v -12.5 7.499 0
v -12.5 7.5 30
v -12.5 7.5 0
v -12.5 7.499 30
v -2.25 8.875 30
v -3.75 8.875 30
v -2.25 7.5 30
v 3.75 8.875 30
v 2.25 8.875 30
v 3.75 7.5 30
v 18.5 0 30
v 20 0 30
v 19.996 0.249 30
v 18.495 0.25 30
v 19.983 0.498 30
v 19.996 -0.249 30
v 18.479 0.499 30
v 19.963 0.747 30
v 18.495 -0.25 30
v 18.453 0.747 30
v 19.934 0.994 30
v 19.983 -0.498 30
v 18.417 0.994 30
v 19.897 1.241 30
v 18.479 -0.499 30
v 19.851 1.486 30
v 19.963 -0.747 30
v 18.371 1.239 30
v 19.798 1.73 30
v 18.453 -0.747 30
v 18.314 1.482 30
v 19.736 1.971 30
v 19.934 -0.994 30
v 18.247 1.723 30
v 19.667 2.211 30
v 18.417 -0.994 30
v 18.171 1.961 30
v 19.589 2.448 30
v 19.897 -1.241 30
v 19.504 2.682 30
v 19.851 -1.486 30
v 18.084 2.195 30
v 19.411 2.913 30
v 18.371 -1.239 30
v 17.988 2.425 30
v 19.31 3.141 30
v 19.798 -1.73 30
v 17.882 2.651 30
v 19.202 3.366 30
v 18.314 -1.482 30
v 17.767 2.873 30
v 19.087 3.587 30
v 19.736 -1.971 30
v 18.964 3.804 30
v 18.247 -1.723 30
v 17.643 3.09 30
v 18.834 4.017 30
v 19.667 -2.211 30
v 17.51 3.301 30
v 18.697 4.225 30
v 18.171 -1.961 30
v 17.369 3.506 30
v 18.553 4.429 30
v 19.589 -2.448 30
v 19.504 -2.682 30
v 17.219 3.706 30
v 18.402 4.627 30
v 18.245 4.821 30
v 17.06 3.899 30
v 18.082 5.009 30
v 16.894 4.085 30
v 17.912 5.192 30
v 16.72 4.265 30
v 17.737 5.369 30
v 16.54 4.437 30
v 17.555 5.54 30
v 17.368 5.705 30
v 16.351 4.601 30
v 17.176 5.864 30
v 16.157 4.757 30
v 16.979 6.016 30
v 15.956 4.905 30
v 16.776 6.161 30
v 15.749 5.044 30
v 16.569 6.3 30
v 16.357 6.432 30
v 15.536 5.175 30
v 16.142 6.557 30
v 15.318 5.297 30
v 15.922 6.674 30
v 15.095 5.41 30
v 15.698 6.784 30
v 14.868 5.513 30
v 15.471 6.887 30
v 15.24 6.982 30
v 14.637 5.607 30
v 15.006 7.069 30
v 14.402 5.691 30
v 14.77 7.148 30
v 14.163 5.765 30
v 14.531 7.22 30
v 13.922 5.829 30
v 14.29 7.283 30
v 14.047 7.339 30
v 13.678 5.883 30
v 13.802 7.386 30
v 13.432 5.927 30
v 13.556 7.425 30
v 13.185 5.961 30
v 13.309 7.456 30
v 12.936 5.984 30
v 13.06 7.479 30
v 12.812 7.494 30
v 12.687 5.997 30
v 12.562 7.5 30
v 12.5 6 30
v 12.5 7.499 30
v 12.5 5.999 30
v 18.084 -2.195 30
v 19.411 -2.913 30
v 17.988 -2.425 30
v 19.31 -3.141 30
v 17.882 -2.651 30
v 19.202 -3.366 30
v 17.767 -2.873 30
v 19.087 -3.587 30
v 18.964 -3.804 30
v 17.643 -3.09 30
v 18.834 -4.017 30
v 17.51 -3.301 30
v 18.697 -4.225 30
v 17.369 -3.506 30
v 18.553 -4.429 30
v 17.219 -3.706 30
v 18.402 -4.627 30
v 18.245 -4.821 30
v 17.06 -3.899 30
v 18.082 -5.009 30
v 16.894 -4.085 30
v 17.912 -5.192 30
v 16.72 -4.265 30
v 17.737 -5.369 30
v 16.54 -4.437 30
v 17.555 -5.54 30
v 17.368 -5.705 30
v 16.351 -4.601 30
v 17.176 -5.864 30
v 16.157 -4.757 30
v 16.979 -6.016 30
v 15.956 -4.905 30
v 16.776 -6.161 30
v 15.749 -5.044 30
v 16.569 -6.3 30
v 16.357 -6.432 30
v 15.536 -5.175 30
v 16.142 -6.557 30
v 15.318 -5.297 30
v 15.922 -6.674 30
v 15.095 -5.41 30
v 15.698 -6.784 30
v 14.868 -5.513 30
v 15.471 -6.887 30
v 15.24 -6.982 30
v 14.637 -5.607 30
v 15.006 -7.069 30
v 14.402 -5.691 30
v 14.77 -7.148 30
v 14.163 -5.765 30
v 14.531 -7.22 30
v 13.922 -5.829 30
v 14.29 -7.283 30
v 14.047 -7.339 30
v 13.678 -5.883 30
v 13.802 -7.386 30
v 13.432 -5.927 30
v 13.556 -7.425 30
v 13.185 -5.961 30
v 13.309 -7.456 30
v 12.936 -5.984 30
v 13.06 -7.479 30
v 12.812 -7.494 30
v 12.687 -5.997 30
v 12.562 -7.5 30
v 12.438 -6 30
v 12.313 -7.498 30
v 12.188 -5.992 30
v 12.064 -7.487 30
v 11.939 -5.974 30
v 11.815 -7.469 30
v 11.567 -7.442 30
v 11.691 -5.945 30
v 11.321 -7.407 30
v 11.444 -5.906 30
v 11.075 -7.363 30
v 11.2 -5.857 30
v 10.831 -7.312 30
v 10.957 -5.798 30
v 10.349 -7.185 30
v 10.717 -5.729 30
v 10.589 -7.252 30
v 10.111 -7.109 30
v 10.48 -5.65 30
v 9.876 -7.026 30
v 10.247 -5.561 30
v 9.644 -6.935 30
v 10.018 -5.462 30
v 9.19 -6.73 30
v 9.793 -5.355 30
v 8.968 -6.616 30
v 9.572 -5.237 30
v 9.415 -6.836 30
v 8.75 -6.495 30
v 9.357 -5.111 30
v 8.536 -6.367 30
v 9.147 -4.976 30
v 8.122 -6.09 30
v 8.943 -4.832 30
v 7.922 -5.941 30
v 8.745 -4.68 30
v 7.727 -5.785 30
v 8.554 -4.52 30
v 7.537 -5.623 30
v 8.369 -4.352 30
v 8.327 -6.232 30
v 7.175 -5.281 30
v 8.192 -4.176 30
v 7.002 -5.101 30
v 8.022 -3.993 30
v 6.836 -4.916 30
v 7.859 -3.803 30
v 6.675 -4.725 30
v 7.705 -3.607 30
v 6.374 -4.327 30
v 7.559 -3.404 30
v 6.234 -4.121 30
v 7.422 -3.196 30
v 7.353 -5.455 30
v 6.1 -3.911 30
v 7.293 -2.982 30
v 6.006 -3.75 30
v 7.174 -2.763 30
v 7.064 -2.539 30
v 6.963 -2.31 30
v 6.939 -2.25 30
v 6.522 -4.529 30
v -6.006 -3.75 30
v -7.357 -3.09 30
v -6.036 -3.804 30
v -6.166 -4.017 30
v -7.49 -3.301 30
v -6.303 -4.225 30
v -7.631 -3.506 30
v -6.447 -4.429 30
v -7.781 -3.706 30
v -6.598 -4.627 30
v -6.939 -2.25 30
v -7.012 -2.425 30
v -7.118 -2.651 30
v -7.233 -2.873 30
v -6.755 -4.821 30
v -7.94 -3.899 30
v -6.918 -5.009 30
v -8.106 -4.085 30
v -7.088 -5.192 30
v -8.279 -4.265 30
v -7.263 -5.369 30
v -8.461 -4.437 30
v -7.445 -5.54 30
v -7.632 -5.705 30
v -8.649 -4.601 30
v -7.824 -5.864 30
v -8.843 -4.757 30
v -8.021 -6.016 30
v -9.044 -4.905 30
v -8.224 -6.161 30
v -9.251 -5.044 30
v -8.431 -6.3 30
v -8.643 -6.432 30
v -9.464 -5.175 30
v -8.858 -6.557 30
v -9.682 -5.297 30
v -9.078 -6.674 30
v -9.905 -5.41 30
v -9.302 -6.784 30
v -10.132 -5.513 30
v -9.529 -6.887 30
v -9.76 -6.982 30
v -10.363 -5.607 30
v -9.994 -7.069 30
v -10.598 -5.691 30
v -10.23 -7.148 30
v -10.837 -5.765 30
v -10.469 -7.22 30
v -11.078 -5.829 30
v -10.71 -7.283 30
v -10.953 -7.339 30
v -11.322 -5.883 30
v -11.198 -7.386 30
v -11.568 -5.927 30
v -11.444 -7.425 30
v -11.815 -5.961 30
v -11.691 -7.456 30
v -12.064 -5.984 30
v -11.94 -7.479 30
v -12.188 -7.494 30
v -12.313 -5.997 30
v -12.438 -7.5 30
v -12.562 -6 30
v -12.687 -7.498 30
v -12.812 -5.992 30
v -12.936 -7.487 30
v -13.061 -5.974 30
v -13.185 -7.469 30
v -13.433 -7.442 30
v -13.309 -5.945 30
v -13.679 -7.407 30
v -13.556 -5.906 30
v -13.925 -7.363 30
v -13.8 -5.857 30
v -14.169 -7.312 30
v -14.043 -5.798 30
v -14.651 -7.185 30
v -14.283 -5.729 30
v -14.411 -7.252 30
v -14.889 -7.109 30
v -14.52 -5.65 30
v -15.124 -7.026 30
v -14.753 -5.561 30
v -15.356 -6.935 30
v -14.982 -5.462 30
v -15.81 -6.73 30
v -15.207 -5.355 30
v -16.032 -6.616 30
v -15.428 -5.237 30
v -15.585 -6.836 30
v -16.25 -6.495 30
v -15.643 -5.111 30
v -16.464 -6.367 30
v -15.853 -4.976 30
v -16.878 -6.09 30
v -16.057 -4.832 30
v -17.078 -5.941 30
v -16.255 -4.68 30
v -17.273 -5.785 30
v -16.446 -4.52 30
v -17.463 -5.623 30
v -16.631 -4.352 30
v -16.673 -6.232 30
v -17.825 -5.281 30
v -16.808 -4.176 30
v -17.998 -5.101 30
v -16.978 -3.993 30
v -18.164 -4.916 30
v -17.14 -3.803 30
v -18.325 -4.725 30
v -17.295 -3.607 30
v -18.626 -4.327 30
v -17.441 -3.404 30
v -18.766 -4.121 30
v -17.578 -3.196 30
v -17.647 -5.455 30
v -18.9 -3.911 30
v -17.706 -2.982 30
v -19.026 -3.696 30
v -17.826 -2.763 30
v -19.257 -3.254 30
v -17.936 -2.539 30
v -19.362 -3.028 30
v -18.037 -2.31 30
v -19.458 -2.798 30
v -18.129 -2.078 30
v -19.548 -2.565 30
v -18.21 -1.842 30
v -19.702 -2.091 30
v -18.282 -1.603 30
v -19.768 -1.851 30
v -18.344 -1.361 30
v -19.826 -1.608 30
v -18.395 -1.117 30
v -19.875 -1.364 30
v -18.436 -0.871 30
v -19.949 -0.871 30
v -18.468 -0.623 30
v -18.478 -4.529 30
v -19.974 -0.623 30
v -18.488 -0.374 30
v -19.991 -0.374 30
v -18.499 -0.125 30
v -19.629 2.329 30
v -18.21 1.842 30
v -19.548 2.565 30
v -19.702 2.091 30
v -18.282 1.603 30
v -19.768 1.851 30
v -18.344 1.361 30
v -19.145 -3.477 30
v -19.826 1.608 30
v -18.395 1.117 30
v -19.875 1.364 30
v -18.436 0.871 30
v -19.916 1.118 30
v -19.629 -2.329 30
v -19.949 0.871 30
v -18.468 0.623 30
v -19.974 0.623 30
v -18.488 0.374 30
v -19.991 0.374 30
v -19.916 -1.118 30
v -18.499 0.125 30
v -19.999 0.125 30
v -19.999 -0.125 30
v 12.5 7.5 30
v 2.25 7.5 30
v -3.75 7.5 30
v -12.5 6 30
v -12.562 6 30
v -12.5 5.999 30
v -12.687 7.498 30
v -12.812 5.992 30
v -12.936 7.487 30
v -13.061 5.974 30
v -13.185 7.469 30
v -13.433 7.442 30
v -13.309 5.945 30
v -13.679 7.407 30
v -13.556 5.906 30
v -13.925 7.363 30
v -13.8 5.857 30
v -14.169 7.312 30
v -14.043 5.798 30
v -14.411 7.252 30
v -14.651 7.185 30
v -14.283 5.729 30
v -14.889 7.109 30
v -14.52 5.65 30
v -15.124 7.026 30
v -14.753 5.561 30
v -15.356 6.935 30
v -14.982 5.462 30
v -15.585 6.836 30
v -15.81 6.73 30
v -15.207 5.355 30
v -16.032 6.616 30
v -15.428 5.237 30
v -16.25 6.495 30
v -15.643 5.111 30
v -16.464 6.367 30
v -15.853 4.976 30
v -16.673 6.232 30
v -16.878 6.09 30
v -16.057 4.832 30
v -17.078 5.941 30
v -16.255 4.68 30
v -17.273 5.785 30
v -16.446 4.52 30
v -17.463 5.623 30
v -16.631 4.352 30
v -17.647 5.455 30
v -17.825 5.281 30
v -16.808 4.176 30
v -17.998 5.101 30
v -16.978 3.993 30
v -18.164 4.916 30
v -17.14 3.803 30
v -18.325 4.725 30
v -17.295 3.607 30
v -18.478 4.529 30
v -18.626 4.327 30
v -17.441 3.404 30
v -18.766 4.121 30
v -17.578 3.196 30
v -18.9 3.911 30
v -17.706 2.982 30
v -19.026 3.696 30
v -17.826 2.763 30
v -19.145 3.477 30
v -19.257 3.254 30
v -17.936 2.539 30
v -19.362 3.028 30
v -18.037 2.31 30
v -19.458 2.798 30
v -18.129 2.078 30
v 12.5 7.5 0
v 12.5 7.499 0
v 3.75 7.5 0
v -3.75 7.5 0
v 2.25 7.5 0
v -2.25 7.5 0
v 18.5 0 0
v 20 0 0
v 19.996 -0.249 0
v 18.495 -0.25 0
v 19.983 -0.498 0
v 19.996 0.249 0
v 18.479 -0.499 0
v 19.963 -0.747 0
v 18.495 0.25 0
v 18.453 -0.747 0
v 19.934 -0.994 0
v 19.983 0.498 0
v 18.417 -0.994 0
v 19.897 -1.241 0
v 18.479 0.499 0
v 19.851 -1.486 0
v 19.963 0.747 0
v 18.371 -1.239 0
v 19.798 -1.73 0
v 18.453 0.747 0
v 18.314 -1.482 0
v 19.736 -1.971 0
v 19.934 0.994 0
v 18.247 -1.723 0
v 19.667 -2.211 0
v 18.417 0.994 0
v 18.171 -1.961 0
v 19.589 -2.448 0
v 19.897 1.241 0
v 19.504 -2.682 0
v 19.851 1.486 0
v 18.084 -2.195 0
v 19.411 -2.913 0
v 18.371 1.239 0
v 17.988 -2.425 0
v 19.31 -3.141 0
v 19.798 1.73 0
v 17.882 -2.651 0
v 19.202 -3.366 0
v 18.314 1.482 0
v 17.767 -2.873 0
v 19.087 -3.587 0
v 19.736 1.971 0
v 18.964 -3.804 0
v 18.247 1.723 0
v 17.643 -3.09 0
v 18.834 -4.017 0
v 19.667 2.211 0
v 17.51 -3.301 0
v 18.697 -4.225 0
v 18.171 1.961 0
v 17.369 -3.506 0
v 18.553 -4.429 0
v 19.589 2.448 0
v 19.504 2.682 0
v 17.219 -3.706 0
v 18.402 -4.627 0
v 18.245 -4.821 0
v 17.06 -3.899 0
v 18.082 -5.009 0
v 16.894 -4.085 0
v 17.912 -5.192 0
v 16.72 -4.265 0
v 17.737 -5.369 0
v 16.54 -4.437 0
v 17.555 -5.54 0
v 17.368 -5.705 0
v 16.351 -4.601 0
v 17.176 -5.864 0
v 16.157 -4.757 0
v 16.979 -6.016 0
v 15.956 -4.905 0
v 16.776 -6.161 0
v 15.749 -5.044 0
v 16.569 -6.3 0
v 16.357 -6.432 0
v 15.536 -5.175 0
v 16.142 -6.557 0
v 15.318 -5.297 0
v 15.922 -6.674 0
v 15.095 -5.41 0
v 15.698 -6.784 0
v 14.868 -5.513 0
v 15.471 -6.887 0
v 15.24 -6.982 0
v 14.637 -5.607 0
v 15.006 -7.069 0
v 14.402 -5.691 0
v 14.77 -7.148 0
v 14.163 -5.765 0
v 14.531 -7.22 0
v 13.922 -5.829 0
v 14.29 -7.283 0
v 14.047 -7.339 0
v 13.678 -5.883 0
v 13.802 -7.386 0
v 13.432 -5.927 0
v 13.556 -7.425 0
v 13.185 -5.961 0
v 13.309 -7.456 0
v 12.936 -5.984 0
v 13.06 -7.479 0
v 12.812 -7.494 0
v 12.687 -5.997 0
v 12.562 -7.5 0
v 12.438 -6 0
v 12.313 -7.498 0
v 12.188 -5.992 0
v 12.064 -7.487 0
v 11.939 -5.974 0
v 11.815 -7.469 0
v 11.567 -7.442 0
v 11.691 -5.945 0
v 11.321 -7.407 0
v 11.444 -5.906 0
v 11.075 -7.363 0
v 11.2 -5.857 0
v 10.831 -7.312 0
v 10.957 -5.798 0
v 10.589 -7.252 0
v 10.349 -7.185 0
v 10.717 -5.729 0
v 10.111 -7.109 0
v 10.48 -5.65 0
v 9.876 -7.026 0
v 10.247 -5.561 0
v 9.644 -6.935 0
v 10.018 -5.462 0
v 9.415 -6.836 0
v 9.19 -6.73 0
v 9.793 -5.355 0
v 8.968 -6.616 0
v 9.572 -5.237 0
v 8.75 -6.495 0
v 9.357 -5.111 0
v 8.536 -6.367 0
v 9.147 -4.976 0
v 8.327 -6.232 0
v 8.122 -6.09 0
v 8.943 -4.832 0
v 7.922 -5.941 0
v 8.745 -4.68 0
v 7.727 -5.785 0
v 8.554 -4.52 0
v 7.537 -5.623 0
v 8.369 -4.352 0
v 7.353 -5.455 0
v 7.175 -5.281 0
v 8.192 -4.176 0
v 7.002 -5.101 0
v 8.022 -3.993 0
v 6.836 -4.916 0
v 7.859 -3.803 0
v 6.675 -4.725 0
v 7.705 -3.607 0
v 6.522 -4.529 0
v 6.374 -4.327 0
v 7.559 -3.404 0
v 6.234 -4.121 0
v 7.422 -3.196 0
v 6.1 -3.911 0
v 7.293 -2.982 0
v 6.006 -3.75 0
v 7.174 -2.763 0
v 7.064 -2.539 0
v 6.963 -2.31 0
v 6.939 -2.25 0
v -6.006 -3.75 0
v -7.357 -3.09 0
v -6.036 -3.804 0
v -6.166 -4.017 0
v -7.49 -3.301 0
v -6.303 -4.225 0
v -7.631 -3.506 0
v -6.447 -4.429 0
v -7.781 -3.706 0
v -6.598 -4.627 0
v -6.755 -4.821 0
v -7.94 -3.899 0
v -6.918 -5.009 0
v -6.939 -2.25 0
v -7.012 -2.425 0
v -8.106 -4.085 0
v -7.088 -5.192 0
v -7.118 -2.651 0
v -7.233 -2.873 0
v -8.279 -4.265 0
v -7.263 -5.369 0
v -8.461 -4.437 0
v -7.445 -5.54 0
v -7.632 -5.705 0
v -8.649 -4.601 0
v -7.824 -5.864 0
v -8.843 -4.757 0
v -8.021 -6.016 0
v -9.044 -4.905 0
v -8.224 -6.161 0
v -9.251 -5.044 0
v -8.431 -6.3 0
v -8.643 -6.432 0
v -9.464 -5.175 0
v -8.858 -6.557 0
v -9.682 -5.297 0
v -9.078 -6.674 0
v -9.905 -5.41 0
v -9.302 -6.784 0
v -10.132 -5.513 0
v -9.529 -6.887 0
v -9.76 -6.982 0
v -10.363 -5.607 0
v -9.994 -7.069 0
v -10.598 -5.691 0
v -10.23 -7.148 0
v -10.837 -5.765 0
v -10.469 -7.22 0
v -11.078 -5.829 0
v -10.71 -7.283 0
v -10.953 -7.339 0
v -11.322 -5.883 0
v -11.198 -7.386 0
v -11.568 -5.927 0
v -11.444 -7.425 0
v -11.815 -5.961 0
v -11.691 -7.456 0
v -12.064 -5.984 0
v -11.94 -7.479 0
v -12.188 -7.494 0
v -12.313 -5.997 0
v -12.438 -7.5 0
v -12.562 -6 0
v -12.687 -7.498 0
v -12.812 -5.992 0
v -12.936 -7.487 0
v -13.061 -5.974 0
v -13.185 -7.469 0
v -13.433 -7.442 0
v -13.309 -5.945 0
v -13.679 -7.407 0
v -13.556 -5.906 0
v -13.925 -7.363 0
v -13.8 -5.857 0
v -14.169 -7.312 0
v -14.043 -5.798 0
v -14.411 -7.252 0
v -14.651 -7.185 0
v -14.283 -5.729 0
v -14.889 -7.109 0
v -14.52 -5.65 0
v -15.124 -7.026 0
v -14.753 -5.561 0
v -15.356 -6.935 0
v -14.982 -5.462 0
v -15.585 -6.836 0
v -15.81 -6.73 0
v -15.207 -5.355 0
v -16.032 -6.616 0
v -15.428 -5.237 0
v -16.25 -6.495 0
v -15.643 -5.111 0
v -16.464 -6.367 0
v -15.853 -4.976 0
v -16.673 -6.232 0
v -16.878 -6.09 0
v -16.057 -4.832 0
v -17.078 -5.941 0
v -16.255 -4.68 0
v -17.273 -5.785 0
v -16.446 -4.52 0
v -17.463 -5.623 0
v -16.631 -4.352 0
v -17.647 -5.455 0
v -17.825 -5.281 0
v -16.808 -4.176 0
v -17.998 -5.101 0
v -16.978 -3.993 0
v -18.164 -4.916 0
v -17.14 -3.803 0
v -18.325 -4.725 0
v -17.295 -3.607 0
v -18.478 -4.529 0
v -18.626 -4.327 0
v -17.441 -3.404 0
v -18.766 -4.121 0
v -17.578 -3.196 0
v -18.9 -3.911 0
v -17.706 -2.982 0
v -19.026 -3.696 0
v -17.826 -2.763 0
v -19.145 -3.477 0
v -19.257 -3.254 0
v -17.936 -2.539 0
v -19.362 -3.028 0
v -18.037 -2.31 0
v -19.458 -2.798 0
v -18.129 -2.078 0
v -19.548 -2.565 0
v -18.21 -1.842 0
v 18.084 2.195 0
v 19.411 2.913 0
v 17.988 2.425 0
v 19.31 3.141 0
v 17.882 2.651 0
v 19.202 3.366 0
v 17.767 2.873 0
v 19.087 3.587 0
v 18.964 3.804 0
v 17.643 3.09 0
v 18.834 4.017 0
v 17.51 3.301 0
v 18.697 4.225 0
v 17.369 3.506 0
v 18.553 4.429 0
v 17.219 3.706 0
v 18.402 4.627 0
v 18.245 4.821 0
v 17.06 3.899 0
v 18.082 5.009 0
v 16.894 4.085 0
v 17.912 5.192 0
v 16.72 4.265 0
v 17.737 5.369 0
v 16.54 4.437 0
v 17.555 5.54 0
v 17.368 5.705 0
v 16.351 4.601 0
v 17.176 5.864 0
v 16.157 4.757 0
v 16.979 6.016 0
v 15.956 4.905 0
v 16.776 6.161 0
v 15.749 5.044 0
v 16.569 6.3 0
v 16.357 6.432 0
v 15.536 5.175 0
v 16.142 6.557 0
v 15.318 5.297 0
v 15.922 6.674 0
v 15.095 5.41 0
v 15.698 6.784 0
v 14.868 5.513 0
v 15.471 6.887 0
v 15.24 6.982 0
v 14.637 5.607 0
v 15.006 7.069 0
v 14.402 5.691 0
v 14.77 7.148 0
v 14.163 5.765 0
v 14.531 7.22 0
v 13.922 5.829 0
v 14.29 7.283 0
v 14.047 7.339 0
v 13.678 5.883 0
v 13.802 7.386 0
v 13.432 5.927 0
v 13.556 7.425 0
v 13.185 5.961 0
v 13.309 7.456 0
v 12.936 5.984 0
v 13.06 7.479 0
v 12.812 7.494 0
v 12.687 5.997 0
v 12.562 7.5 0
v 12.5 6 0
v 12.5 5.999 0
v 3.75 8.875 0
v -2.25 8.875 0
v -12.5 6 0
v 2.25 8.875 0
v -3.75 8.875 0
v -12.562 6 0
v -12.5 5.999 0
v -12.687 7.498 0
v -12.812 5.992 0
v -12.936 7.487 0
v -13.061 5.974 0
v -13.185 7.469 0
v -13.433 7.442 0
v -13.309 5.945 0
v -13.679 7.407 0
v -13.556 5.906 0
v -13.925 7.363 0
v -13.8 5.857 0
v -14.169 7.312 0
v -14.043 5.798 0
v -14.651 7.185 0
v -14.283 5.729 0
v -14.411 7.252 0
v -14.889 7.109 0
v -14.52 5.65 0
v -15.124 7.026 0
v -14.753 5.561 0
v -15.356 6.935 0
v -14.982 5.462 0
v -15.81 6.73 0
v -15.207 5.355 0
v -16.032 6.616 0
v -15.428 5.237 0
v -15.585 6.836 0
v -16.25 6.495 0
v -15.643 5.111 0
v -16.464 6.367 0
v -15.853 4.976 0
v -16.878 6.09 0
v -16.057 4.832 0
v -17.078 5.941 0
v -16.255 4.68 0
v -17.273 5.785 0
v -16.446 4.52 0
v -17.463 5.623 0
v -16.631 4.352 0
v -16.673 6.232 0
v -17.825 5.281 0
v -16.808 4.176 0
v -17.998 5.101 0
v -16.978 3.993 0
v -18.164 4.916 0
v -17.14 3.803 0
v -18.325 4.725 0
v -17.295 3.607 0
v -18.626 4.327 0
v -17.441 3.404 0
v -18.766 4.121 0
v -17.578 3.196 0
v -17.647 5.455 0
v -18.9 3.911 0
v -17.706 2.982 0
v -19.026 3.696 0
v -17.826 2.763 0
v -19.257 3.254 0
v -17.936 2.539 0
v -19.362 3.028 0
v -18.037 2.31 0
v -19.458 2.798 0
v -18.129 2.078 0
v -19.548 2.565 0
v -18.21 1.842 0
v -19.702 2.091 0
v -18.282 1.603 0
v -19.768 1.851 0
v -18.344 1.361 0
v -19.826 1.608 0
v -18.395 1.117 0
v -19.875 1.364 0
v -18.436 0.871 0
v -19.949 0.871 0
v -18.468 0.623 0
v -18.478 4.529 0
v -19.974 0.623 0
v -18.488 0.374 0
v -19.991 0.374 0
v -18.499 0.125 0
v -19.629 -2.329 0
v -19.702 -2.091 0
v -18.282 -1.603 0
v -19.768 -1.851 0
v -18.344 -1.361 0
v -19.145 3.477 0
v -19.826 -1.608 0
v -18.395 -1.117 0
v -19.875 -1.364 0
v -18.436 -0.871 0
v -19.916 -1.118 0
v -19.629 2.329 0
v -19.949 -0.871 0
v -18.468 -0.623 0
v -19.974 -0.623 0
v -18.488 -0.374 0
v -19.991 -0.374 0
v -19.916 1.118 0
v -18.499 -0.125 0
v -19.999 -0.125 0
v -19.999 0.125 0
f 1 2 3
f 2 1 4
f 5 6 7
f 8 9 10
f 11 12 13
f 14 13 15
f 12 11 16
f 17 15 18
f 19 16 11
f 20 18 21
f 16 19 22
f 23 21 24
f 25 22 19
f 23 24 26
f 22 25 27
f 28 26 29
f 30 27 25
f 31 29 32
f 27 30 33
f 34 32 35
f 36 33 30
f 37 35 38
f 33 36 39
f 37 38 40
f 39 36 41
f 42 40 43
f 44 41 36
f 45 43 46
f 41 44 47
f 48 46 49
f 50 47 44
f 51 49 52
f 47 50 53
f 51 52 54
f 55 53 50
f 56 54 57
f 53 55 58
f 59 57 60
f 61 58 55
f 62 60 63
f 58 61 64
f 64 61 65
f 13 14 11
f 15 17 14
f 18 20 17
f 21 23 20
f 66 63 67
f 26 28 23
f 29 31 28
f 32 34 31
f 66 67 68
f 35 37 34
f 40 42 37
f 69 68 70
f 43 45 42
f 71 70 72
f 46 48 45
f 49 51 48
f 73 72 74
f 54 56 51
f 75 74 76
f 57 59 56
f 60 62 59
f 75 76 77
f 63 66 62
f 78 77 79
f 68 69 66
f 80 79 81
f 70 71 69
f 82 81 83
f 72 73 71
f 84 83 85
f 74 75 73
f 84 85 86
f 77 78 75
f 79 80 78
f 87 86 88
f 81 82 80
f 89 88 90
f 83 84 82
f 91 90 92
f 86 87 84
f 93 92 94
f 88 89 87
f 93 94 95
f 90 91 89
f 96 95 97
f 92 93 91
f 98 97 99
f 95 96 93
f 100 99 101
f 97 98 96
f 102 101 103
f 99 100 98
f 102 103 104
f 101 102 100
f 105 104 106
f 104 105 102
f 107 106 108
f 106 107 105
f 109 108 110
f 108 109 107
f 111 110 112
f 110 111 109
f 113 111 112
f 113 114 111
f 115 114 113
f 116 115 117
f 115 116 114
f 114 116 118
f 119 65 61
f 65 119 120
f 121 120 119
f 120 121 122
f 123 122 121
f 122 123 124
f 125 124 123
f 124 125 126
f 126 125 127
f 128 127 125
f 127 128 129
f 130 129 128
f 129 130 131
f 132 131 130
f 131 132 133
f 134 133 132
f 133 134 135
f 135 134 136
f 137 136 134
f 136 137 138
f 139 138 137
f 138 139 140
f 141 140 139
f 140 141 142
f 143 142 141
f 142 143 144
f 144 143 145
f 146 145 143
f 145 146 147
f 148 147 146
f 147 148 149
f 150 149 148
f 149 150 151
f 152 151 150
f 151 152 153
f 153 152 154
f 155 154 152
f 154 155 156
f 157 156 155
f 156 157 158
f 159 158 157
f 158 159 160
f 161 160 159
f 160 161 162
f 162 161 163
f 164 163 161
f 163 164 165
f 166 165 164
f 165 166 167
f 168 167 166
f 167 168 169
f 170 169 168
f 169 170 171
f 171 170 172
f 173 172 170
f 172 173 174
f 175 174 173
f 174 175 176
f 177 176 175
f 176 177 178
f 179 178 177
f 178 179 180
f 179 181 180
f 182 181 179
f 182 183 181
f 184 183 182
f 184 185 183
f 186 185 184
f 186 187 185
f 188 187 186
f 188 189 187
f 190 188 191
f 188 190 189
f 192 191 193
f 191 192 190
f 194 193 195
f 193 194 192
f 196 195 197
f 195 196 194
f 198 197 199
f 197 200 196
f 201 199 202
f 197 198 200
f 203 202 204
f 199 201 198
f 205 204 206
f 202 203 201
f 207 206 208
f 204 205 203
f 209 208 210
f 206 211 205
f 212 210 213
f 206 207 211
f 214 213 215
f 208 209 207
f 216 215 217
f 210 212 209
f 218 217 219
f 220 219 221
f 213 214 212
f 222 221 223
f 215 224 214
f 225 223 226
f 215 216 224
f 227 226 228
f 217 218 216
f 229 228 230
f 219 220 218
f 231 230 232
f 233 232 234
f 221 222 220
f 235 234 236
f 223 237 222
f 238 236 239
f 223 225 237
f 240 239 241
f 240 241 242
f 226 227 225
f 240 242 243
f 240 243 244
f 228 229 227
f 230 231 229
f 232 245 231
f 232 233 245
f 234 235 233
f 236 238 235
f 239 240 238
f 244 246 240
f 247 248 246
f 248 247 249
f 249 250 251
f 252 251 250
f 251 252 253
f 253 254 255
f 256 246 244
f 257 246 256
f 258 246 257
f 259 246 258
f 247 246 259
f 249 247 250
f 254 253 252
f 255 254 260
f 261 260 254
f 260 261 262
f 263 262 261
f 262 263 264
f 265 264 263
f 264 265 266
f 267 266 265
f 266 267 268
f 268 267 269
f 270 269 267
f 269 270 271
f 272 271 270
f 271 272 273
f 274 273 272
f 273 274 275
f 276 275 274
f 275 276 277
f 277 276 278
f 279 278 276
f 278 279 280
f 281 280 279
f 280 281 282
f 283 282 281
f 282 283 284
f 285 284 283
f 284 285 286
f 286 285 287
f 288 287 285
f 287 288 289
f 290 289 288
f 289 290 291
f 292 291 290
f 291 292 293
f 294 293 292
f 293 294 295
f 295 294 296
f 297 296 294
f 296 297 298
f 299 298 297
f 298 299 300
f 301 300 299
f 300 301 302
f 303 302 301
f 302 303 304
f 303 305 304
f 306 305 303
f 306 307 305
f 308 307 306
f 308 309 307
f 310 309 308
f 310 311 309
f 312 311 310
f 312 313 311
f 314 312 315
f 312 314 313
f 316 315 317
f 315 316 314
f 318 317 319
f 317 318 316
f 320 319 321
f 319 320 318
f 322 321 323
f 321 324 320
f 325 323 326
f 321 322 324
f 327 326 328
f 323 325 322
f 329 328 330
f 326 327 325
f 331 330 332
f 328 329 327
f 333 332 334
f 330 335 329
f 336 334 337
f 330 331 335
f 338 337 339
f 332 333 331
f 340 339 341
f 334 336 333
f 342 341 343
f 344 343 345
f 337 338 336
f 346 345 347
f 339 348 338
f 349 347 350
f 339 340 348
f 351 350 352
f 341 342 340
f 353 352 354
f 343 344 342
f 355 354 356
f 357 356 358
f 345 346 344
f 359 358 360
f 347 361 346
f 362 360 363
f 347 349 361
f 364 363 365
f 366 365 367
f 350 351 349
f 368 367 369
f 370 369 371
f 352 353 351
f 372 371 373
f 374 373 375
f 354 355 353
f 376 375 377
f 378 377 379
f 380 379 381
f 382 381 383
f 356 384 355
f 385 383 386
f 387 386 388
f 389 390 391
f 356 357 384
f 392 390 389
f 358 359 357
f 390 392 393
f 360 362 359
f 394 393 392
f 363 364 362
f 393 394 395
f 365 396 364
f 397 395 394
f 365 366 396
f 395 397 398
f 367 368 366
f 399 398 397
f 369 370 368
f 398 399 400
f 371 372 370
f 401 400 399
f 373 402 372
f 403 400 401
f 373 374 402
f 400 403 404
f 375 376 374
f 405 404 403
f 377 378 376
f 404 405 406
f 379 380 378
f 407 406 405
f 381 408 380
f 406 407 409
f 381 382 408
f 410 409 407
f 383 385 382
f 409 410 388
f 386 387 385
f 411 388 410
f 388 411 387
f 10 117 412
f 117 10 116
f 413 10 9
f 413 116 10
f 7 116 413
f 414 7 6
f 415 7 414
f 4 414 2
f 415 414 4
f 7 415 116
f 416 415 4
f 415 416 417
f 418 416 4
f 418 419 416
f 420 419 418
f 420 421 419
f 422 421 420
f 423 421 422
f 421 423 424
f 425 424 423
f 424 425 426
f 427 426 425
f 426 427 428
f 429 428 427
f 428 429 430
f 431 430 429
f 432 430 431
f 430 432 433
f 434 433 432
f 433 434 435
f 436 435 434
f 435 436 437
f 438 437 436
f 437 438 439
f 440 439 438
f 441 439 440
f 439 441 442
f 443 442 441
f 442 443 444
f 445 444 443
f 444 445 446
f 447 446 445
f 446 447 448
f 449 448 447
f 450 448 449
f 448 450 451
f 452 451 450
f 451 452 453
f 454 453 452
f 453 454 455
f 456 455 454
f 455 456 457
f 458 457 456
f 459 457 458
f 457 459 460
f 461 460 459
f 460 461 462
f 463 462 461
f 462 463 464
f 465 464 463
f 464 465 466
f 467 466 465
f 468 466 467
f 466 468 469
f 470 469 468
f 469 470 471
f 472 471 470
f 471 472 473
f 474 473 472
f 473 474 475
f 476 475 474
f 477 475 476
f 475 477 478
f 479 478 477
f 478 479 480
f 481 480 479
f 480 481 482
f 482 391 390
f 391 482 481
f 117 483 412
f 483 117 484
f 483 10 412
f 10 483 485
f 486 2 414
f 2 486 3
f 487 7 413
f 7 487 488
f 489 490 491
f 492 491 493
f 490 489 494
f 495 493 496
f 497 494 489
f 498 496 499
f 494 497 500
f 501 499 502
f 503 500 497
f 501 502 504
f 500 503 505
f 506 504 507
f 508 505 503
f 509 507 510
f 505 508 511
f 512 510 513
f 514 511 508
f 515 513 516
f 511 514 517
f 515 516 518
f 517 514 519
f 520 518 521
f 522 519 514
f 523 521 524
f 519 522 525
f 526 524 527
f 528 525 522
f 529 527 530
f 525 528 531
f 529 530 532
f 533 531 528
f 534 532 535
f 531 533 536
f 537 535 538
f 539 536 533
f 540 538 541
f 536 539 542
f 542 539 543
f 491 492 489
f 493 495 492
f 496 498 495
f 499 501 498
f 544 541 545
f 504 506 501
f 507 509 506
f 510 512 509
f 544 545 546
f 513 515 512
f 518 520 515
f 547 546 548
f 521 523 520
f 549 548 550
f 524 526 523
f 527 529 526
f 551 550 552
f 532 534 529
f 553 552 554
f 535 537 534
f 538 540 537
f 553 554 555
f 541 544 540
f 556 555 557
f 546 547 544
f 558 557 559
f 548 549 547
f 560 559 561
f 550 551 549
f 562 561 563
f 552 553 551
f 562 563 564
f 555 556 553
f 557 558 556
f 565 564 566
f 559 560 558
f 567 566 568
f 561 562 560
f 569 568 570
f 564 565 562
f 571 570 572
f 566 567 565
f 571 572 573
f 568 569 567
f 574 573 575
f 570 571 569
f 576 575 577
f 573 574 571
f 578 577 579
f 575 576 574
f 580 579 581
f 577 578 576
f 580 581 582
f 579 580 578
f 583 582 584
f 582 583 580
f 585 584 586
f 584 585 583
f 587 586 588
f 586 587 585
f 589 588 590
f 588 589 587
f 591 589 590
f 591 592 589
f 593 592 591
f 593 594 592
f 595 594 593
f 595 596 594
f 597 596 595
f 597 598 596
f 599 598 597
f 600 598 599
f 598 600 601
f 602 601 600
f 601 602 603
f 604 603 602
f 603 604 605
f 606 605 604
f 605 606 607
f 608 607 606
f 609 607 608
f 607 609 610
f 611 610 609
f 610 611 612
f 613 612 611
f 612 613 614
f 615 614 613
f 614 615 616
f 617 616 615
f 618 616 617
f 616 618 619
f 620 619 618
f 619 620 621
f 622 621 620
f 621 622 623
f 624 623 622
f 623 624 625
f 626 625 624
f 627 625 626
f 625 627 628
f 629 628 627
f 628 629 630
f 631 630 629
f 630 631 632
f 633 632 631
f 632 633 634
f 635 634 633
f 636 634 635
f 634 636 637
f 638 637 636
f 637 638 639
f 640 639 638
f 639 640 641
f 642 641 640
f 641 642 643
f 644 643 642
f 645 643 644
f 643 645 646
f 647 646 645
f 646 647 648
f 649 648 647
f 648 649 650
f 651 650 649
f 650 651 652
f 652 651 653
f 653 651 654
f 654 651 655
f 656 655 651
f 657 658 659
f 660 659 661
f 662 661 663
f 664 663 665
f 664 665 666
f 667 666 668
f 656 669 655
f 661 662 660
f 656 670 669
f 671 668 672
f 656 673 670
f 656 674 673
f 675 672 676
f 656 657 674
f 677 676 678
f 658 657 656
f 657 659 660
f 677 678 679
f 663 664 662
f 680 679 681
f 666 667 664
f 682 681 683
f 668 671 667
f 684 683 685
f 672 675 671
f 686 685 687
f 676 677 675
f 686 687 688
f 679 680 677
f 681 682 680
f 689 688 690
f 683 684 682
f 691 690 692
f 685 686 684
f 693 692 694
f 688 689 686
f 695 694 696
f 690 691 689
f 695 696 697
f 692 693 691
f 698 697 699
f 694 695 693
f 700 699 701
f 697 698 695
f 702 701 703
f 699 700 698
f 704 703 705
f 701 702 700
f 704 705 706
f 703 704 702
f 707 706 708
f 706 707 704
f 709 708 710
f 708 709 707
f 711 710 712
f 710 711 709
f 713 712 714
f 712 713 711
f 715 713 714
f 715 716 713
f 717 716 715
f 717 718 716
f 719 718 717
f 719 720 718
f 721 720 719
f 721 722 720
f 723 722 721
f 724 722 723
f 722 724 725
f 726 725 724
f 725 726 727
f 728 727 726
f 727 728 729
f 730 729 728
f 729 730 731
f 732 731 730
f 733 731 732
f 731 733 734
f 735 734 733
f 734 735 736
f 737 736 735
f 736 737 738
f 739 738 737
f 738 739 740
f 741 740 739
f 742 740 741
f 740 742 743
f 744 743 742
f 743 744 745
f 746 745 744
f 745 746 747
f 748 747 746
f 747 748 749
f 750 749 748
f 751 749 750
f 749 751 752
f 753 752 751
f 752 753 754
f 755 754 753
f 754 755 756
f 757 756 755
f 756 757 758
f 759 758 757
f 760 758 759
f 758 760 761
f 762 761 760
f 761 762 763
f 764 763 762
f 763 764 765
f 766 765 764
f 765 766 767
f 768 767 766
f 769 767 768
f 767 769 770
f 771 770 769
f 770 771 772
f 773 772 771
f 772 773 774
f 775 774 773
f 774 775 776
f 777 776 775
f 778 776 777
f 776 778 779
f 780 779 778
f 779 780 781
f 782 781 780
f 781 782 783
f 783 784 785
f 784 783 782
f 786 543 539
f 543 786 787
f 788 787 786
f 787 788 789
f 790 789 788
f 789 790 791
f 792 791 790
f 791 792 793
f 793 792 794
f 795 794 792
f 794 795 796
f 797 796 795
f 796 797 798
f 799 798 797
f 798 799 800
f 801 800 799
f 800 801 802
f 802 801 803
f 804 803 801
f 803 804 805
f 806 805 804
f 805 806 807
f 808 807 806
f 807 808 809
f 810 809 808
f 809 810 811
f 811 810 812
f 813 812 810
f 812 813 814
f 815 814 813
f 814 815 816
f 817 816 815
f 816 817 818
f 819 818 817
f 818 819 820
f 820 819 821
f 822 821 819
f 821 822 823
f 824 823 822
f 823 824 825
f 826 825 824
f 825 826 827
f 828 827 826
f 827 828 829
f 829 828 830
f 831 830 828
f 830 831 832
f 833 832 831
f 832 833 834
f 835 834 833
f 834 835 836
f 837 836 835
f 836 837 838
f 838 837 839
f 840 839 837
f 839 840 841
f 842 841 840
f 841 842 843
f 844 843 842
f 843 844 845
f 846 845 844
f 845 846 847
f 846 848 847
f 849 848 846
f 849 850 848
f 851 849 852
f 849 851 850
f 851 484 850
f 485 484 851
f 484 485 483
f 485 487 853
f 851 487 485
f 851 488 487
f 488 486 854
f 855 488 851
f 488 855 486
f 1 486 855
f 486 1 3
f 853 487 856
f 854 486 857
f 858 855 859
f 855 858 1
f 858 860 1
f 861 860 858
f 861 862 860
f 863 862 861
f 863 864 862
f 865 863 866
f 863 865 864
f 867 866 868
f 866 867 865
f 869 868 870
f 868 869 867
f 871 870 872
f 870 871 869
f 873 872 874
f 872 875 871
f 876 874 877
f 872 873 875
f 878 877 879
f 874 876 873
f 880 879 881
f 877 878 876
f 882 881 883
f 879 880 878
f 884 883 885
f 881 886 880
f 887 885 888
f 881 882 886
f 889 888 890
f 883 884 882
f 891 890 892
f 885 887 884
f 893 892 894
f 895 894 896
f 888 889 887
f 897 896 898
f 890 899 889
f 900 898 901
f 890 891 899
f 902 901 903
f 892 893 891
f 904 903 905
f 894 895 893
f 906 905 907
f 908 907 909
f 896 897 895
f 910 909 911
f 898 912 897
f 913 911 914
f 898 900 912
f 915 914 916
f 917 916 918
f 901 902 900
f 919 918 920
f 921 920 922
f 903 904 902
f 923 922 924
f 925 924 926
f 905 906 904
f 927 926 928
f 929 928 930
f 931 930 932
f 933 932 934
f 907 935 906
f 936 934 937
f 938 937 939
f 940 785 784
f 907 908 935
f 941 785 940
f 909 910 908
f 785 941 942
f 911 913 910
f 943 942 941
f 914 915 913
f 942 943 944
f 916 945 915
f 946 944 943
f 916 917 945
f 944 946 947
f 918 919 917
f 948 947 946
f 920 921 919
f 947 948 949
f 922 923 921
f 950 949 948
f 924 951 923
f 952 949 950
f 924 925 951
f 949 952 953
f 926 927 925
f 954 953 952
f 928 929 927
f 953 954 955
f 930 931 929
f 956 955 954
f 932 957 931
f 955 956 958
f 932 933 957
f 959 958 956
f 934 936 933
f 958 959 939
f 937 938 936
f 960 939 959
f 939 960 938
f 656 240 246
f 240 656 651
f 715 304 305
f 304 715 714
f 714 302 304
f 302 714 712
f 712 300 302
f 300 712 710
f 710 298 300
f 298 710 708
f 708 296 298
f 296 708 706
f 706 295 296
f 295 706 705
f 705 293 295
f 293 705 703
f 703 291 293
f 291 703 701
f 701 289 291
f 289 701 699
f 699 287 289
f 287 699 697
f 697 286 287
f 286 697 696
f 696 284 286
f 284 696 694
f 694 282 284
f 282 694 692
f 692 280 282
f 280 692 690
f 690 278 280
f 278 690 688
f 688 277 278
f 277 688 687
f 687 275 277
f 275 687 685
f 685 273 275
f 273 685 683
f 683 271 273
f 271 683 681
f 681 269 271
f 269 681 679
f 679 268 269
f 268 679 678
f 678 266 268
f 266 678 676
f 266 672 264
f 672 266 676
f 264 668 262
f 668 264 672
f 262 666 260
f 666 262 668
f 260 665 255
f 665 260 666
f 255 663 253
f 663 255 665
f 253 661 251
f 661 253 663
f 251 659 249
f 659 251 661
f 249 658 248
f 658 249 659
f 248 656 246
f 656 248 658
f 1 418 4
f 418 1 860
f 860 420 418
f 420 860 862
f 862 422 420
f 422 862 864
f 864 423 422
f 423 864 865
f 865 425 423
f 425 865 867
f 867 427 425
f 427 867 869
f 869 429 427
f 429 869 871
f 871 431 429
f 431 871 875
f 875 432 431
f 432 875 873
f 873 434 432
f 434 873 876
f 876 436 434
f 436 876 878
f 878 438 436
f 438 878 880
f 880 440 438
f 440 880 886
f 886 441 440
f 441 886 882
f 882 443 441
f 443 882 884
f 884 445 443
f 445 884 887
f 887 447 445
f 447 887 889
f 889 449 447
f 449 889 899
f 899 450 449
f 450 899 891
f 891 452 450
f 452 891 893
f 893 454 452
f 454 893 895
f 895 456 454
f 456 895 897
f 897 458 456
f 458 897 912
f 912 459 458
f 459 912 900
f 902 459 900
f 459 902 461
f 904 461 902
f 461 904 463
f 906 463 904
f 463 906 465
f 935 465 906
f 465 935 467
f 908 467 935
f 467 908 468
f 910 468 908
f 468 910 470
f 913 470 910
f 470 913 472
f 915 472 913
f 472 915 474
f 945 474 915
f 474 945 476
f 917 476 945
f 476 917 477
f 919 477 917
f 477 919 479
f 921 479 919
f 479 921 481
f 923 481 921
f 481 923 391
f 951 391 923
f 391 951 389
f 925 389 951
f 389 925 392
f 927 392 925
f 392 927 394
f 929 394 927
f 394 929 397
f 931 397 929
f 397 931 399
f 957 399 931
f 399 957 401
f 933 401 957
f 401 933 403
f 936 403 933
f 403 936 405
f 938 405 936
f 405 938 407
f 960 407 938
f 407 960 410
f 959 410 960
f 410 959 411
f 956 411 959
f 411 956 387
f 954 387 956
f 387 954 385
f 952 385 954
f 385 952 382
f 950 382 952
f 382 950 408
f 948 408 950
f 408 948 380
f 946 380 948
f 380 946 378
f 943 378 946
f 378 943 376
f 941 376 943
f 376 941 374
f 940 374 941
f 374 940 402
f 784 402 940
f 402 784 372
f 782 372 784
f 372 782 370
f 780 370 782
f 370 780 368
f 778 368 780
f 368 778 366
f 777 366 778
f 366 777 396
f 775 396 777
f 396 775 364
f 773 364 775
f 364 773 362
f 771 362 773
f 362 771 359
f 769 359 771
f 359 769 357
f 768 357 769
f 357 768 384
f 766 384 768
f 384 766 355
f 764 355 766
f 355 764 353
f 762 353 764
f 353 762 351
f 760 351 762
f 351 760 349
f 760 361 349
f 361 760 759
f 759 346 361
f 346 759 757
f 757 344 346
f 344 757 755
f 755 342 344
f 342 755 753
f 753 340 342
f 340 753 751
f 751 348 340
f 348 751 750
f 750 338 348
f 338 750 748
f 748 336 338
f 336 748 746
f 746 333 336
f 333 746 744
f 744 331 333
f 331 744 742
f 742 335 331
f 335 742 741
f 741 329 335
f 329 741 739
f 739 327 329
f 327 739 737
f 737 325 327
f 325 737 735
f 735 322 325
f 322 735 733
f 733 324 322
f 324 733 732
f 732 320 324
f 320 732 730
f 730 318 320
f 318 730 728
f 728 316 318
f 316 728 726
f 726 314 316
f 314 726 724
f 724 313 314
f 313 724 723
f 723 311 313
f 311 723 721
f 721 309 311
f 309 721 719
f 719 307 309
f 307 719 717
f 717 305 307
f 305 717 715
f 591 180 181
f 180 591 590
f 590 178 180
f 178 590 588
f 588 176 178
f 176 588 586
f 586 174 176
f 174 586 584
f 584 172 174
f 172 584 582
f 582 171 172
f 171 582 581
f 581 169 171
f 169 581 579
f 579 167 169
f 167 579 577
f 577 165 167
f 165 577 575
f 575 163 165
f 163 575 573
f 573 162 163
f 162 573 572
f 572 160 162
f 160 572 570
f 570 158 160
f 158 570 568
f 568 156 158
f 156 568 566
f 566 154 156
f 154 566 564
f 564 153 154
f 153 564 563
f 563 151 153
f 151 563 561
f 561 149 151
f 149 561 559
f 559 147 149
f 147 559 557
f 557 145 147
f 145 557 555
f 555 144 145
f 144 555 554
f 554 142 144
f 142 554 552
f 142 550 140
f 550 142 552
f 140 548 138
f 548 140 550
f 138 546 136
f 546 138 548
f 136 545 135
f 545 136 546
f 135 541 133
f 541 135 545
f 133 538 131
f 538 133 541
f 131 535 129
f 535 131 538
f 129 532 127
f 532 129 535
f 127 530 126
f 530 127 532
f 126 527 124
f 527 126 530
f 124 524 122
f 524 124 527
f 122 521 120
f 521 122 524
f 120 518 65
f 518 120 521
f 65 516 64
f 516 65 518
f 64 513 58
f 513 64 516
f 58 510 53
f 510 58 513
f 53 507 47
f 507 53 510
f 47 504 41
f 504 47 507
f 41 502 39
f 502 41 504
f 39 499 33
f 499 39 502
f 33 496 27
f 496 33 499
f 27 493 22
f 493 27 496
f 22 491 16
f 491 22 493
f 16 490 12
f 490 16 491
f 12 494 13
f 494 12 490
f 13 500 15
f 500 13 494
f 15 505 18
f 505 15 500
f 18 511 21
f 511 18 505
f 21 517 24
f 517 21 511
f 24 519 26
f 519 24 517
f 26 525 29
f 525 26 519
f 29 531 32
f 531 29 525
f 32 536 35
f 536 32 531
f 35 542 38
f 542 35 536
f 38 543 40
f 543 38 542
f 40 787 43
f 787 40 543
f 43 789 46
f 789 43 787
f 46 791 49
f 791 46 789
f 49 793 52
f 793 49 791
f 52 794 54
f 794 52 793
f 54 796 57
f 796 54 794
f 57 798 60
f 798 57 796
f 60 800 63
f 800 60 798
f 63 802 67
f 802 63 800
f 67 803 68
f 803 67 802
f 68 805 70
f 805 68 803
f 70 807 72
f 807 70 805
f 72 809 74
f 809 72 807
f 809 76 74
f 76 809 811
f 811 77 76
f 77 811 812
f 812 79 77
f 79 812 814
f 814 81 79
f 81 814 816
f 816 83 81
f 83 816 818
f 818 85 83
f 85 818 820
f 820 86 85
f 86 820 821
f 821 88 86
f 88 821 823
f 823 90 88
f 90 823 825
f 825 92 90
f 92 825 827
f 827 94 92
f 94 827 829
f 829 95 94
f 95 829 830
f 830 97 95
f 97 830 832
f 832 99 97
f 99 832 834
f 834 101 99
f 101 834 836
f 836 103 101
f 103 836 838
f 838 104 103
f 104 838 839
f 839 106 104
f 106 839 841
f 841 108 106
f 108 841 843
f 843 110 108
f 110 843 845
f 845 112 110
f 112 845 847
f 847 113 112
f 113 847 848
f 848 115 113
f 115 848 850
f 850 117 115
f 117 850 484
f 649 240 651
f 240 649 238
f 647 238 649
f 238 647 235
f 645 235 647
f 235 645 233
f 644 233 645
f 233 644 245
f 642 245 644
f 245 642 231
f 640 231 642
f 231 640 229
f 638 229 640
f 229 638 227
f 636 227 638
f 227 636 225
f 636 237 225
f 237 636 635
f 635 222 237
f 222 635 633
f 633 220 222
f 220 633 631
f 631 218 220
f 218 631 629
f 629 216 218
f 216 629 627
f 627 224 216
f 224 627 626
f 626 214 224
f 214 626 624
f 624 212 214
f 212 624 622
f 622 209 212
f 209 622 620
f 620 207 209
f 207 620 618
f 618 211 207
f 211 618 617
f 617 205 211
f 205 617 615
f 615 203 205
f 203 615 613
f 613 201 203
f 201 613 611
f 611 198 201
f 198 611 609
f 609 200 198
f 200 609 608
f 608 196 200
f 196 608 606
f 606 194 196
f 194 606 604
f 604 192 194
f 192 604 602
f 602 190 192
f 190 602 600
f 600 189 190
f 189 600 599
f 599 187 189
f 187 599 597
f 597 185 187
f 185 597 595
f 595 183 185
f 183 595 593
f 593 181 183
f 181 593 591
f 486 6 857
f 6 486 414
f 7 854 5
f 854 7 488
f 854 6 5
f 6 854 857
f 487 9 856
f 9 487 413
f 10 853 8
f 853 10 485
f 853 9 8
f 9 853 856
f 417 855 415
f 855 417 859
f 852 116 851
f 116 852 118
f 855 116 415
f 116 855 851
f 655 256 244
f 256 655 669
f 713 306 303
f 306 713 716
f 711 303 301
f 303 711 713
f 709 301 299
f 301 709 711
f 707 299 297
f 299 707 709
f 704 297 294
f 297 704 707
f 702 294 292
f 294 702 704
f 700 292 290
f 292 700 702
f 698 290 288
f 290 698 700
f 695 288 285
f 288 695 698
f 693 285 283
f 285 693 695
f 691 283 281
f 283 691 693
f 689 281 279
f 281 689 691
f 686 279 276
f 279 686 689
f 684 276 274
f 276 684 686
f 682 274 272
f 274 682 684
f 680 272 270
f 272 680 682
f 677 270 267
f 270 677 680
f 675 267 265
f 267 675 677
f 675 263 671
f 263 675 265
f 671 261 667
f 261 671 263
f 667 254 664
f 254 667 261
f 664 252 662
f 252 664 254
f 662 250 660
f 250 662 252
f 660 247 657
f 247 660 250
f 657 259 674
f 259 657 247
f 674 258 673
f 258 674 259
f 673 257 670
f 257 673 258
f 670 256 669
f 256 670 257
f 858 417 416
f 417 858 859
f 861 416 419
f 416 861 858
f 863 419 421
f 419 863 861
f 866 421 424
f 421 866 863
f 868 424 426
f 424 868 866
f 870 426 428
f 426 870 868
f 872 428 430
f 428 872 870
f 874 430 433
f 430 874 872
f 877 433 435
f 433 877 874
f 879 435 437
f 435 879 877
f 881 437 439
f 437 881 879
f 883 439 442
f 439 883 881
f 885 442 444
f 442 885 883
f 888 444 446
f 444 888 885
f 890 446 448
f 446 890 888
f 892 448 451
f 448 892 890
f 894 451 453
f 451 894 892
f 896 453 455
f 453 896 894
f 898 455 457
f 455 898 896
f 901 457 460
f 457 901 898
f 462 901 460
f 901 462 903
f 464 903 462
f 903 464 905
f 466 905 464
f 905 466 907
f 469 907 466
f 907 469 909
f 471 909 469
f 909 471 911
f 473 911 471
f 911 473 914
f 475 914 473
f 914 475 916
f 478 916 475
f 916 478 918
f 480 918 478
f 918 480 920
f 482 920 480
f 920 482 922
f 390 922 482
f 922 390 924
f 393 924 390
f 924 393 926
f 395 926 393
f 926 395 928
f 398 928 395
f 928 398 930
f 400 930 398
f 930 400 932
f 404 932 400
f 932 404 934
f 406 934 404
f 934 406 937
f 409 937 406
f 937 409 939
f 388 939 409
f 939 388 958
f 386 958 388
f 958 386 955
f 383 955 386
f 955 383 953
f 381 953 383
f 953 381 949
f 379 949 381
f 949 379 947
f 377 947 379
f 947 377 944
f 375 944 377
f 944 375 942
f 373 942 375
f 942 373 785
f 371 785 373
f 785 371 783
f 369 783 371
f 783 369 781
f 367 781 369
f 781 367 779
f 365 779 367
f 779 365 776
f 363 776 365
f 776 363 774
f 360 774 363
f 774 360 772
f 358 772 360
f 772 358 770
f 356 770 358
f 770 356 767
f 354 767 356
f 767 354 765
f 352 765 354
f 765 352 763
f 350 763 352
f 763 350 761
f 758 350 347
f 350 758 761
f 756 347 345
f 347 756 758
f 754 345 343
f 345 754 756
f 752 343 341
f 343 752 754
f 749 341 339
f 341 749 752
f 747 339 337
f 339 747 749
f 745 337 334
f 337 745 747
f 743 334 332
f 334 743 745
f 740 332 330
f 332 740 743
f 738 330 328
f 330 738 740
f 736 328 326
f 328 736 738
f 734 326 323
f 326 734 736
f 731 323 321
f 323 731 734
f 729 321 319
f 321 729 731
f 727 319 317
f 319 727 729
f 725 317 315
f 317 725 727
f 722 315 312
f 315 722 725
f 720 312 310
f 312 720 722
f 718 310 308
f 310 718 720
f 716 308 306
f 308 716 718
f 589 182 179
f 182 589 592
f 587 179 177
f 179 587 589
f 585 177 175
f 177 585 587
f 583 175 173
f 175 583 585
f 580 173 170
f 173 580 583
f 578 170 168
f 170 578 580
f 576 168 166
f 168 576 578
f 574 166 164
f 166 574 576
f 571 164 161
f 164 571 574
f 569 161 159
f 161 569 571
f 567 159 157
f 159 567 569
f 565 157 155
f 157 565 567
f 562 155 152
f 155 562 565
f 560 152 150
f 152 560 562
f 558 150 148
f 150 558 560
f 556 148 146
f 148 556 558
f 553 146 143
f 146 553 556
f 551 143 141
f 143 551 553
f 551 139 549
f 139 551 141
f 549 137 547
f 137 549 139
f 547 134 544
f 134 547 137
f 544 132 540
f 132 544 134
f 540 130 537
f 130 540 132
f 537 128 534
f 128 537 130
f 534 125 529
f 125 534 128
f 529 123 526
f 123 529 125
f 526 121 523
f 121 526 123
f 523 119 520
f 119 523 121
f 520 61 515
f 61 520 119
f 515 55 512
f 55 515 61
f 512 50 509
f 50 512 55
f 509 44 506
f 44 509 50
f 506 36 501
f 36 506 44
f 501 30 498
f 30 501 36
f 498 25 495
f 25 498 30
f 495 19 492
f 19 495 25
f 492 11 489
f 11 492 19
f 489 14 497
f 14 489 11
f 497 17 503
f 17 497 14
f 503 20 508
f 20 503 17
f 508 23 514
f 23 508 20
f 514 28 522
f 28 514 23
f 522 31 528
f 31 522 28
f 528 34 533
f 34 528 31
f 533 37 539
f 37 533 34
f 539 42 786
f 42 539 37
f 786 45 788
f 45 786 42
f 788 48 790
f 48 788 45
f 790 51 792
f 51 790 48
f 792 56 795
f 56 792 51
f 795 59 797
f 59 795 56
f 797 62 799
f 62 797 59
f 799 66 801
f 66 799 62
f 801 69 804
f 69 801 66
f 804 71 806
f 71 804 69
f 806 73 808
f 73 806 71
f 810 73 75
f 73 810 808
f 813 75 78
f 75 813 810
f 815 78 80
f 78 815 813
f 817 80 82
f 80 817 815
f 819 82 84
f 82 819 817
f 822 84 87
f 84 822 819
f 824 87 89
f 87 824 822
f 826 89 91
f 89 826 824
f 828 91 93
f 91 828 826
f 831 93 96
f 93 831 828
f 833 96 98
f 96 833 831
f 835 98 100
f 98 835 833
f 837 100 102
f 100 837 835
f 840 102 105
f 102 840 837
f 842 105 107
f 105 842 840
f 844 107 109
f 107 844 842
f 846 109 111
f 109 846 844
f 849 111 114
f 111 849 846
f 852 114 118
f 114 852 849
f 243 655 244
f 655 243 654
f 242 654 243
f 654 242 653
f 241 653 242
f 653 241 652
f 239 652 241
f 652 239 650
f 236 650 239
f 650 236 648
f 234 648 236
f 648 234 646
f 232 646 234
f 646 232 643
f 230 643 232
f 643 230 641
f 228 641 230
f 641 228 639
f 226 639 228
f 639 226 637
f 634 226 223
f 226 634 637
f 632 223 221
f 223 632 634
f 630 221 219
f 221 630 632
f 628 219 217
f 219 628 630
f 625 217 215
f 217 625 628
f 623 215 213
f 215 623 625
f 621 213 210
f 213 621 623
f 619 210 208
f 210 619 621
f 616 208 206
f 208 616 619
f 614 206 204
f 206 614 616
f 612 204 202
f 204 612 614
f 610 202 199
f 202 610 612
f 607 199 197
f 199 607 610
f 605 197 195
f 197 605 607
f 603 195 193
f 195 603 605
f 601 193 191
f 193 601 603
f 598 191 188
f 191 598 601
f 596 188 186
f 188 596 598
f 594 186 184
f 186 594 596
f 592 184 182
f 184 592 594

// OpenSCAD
$fs = 0.25;
$fa = 0.25;
//---------------------------------------------------------------------------------------------------- 
// CloverPlus v3 foot by pbmax (mpeterson333/@/gmail.com)
//---------------------------------------------------------------------------------------------------- 
// These support the printer and isolate vibrations from the surface below it.
//---------------------------------------------------------------------------------------------------- 

cloverplus_v3_foot();

module cloverplus_v3_foot()
{
  d = 15;
  l = 40;
  w = 30;
  t = 1.5;
  
  ff = 0.1;
  
  
  grip_w = 4.5;
  grip_h = 2.75;
  
  difference()
  {
    union()
    {
      foot_shape(l,w,d);
      for(i = [-1,1])
        translate([i*(grip_w*0.5+t*0.5), d*0.5, w*0.5])
          cube([t, grip_h, w], center=true);
    }
    foot_shape(l-t*2,w,d-t*2, t*0.5);
  }
  
  module foot_shape(l, w, d, cube_y_off = 0)
  {
    translate([0, d*0.125 + cube_y_off*0.5, w*0.5])
    cube([l-d, d*0.75 - cube_y_off, w], center=true);
    linear_extrude(height=w)
    {
      for(i = [-1,1])
        translate([i*(l*0.5-d*0.5), 0, 0])
          circle(d=d, center=true);
    }
  }
}
